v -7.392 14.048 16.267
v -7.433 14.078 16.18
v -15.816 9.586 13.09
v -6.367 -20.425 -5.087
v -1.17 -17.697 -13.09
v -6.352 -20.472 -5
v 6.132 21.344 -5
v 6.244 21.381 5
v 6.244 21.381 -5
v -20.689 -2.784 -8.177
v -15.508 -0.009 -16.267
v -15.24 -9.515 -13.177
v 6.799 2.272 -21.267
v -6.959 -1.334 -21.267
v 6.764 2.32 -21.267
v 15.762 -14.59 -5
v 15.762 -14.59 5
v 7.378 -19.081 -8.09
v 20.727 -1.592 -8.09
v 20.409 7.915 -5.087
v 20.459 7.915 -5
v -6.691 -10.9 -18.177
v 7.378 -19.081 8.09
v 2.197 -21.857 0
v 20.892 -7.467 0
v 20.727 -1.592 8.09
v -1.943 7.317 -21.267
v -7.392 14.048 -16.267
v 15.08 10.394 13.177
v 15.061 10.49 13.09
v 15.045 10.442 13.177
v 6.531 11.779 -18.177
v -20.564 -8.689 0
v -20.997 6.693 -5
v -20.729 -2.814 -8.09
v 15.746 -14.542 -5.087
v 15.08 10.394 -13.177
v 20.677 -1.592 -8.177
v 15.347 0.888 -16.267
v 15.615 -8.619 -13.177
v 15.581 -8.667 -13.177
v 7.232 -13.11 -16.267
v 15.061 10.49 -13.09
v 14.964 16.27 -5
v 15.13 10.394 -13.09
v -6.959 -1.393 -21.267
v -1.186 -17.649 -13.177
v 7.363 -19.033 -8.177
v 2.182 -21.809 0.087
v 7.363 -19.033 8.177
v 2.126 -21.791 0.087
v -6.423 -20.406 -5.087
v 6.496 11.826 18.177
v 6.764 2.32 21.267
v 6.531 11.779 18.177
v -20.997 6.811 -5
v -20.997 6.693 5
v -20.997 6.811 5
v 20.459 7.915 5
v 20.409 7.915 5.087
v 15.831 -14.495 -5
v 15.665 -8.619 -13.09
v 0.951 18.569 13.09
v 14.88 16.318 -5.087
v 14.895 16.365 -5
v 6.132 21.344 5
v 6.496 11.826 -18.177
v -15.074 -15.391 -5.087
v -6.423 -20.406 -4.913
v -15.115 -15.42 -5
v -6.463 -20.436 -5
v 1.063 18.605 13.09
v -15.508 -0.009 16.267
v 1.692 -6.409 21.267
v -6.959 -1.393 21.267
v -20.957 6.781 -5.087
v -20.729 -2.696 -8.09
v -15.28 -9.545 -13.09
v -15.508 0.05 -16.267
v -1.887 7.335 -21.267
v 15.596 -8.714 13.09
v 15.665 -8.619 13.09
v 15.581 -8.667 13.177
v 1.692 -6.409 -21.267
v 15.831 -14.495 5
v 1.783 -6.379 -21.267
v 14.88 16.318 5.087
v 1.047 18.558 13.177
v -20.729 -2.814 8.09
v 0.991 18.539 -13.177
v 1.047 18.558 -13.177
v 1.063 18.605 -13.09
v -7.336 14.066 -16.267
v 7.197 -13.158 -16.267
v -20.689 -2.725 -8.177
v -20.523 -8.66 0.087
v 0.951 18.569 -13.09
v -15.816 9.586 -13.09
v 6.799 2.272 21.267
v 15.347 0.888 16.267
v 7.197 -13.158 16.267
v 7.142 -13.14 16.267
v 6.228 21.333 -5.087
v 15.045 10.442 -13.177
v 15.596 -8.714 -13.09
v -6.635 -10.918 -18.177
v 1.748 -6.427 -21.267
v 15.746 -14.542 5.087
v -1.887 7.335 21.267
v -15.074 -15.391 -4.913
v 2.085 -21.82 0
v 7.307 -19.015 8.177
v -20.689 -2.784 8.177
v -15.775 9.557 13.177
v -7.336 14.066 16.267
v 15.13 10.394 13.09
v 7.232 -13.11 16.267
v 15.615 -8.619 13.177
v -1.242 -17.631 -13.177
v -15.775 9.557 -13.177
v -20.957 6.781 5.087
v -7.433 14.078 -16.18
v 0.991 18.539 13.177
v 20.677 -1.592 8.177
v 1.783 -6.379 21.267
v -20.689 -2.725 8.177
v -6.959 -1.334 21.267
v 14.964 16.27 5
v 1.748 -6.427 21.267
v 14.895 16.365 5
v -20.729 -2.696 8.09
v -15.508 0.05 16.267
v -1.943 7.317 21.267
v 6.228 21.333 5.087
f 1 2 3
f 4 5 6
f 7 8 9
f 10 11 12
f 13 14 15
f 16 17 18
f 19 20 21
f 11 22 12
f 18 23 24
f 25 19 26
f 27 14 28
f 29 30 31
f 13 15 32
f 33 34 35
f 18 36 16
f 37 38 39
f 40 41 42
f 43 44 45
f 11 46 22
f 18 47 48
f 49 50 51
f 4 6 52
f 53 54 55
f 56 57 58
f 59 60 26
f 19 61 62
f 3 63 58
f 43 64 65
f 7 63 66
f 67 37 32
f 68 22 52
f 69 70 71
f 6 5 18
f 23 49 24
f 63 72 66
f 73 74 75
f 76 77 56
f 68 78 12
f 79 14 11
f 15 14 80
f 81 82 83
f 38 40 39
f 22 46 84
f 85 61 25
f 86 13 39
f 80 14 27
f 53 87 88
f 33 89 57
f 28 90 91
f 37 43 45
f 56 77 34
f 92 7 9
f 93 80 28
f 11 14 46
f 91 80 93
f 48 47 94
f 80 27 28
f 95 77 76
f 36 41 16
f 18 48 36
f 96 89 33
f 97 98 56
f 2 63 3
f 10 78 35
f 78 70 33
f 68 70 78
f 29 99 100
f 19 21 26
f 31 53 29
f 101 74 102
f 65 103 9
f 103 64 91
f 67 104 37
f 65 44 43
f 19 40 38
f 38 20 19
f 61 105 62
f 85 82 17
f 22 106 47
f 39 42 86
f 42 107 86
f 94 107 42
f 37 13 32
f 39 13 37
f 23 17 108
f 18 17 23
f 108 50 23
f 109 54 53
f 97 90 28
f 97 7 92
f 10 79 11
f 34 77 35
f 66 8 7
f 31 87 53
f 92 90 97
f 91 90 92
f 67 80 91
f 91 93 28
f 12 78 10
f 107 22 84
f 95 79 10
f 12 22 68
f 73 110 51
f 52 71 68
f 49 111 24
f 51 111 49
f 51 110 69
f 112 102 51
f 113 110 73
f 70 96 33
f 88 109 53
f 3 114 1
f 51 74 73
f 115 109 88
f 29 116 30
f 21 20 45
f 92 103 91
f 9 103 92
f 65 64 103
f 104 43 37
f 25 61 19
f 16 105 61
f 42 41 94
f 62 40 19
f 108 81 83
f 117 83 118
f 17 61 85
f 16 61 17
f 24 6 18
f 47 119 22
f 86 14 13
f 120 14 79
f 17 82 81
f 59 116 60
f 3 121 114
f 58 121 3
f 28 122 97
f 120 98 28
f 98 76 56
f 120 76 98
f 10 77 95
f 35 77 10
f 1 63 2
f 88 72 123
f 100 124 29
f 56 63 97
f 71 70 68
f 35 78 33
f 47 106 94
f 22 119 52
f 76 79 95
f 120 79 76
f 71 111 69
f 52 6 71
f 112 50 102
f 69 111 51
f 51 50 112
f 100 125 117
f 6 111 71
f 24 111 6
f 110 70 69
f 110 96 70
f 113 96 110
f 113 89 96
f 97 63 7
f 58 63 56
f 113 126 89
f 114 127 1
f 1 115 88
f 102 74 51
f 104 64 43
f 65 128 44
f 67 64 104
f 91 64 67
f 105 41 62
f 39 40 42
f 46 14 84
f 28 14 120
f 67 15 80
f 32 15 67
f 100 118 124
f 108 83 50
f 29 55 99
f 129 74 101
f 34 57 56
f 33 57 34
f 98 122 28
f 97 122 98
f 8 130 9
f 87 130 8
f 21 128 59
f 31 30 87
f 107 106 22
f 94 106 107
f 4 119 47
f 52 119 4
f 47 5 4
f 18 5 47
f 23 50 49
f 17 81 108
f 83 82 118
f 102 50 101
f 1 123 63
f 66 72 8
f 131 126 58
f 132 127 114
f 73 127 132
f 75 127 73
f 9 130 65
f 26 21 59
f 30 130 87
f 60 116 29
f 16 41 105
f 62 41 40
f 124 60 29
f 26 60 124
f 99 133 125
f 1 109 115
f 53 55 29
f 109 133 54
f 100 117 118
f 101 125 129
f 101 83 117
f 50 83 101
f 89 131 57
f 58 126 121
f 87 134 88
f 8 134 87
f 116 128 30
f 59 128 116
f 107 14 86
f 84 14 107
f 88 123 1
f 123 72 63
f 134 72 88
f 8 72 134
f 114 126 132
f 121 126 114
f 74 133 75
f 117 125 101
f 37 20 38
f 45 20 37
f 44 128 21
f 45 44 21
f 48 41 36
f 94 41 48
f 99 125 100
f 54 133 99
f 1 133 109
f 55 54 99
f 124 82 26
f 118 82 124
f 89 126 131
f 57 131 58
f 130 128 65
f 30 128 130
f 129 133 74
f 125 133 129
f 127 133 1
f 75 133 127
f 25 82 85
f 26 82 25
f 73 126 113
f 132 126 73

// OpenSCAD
// Auto-generated OpenSCAD file

    inner_points = 10*[[1.529747169709951, 0.0887684815985697, 1.6180339887495454], [-0.6650403250001585, -1.087029682257868, -1.8090169943750285], [0.6748581958379799, 0.22720562383973383, 2.1180339887497732], [-1.5199292988721298, -0.9485925400167037, -1.3090169943748005], [1.502961023190905, 1.0394477122238417, 1.3090169943748005], [-0.6918264715192047, -0.13635045163259588, -2.1180339887497732], [0.6480720493189337, 1.1778848544650058, 1.8090169943750285], [-1.5467154453911758, 0.0020866906085682327, -1.6180339887495454], [0.7347538403093706, -1.8985777606351613, 0.8090169943743729], [0.21663479539132455, -2.176146055124717, -5.111466805374221e-13], [0.6212859027994219, 2.128564085090691, -0.49999999999971656], [0.10316685788137583, 1.8509957906011352, -1.3090169943746006], [2.0626732322522554, -0.15918577764171576, 0.8090169943744226], [1.5565333162282435, -0.8619107490260339, -1.309016994375499], [-1.5467154453904224, 0.002086690607900017, 1.618033988750244], [-2.0648344903084683, -0.27548160388165555, 0.8090169943753601], [2.035887085733209, 0.7914934529835562, 0.4999999999996777], [1.5297471697091976, 0.08876848159923792, -1.618033988750244], [-1.5735015919094684, 0.9527659212331719, 1.309016994375499], [-2.0916206368275145, 0.6751976267436165, 0.5000000000006152], [2.0626732322518784, -0.15918577764138167, -0.809016994375472], [0.1732938998954964, -0.6379147475740927, -2.1180339887500783], [-0.1902621755767213, 0.7287699197812307, 2.1180339887500783], [-2.0648344903088454, -0.2754816038813214, -0.8090169943745347], [0.7181990913331984, -1.3110256837103498, 1.6180339887494455], [-0.6382541784808796, -2.037708912883346, -0.5000000000002833], [0.6212859027996548, 2.128564085090484, 0.5000000000002833], [-0.7351673670144232, 1.4018808559174876, -1.6180339887494455], [1.5730880652047925, -1.4494628259511797, -0.500000000000677], [1.5029610231902952, 1.0394477122243824, -1.3090169943750942], [1.5565333162288535, -0.8619107490265745, 1.3090169943743954], [-0.12013513356321057, -1.7601406183934567, -1.309016994375294], [0.1732938998964831, -0.6379147475749672, 2.118033988749711], [-1.5033745498955808, -1.5361446169418493, -0.49999999999997824], [1.486406274214356, 1.6269997891489871, 0.49999999999997824], [-0.190262175577708, 0.7287699197821053, -2.118033988749711], [0.10316685788198571, 1.8509957906005945, 1.309016994375294], [-1.5735015919100783, 0.9527659212337125, -1.3090169943743954], [1.5730880652050256, -1.4494628259513862, 0.49999999999932293], [0.7347538403089937, -1.8985777606348273, -0.8090169943755219], [1.486406274214123, 1.6269997891491939, -0.5000000000000218], [0.6480720493180911, 1.1778848544657528, -1.8090169943748664], [2.079227981228428, -0.7467378545665272, -6.49896803039951e-13], [0.7181990913324445, -1.3110256837096819, -1.6180339887503443], [-0.6918264715182181, -0.13635045163347048, 2.1180339887500166], [-2.0482797413322964, -0.8630336808064671, 2.875200078022999e-13], [2.0358870857329765, 0.7914934529837627, -0.5000000000003222], [0.6748581958369932, 0.22720562384060844, -2.1180339887500166], [-0.7351673670136694, 1.4018808559168197, 1.6180339887503443], [-2.0916206368277477, 0.6751976267438229, -0.4999999999993848]];

    outer_points = 10*[[1.9089405079323911, -0.4218501272152671, -1.0789145401017997], [-1.2043326607979576, -0.577474804500691, 1.7894618380401386], [1.8819218900924022, 0.577474804500691, -1.054021265088006], [-1.2313512786379466, 0.4218501272152671, 1.8143551130539322], [1.2313512786379466, -0.4218501272152671, -1.8143551130539322], [-1.8819218900924022, -0.577474804500691, 1.054021265088006], [1.2043326607979576, 0.577474804500691, -1.7894618380401386], [-1.9089405079323911, 0.4218501272152671, 1.0789145401017997], [1.8161383771497412, -0.48129346445006527, 1.2066755875633466], [1.0811942768032063, -0.5180314672658928, 1.883807397859486], [-1.0541756589632172, -0.48129346445006527, -1.9087006728732798], [-1.789119759309752, -0.5180314672658928, -1.2315688625771404], [1.604429700784257, -1.3321032531169081, -0.7983572106372436], [0.028548915388096174, -2.1349731725874808, 0.6535613890536225], [0.6490403139063483, 2.1349731725874808, 0.08187918389851007], [-0.0859037864401867, 2.0982351697716535, 0.7590109941946495], [0.9268404714898124, -1.3321032531169081, -1.5337977835893761], [-0.6490403139063483, -2.1349731725874808, -0.08187918389851007], [-0.028548915388096174, 2.1349731725874808, -0.6535613890536225], [-0.7634930157346311, 2.0982351697716535, 0.02357042124251696], [0.3254392898648874, -2.188664775803015, -0.2998395325355988], [-1.2941585375254203, -1.3745929899519995, 1.192357232218884], [1.2941585375254203, 1.3745929899519995, -1.192357232218884], [-1.3648941973595563, 1.2416736470855463, 1.2575286722962942], [2.1878247482682935, 0.04809067002531284, 0.4440474477137366], [0.26371611372985215, -0.04809067002531284, 2.2168015419327753], [-0.26371611372985215, 0.04809067002531284, -2.2168015419327753], [-2.1878247482682935, -0.04809067002531284, -0.4440474477137366], [0.9358529551889134, -1.807795784376752, 0.9176718508015878], [-0.8380986775147881, -1.807795784376752, -1.0077365658927917], [2.097998871540831, -0.7490275154259958, -0.1530571581075182], [-0.28033019684298266, -0.8679141898955922, 2.038187409738281], [2.0542818295466843, 0.8679141898955922, -0.11277899304390138], [-0.3240472388371295, 0.7490275154259958, 2.0784655748018976], [0.3240472388371295, -0.7490275154259958, -2.0784655748018976], [-2.0542818295466843, -0.8679141898955922, 0.11277899304390138], [0.28033019684298266, 0.8679141898955922, -2.038187409738281], [-2.097998871540831, 0.7490275154259958, 0.1530571581075182], [1.7263125004222784, -1.2784116499013738, 0.609570981742092], [0.5371479662303715, -1.337854987136172, 1.7051932656649915], [-0.46641230639623543, -1.2784116499013738, -1.770364705742402], [-1.6555768405881424, -1.337854987136172, -0.6747424218195024], [1.2327433296657047, -1.8614873875922862, -0.03572907078763354], [-0.37015607357044544, -1.6650323753469007, 1.441082803917026], [1.4665184769797024, 1.6650323753469007, -0.2511149601747792], [-0.4575901575587392, 1.5688510352962752, 1.5216391340442594], [0.1363809262564476, -1.8614873875922862, -1.2256969145298804], [-1.4665184769797024, -1.6650323753469007, 0.2511149601747792], [0.37015607357044544, 1.6650323753469007, -1.441082803917026], [-1.5539525609679963, 1.5688510352962752, 0.3316712903020125]];

    // Convex hull for inner set (I)
    module inner_hull() {
        hull() {
            for (p = inner_points) {
                translate(p) sphere(r=0.1);
            }
        }
    }

    // Convex hull for outer set (O) minus inner hull (O \ I)
    module outer_minus_inner() {
        difference() {
            hull() {
                for (p = outer_points) {
                    translate(p) sphere(r=0.1);
                }
            }
            inner_hull(); // Subtract inner hull
        }
    }

    // Convex hull for outer set (O) minus all translated inner hulls
    module outer_minus_AllTranslationInner() {
        difference() {
            hull() {
                for (p = outer_points) {
                    translate(p) sphere(r=0.1);
                }
            }
            hull() {
                translate([0,0,50]) inner_hull();
                translate([0,0,-50]) inner_hull();
            }; // Subtract translated inner hulls
        }
    }

    // Difference between outer_minus_inner and outer_minus_AllTranslationInner
    module outer_minus_inner_diff() {
        difference() {
            // Outer minus inner
            difference() {
                hull() {
                    for (p = outer_points) {
                        translate(p) sphere(r=0.1);
                    }
                }
                inner_hull();
            }

            // Subtract Outer minus AllTranslationInner
            difference() {
                hull() {
                    for (p = outer_points) {
                        translate(p) sphere(r=0.1);
                    }
                }
                hull() {
                    translate([0,0,50]) inner_hull();
                    translate([0,0,-50]) inner_hull();
                };
            }
        }
    }

    // Rendering all with colors applied
    color([1, 0, 0, 0.5]) inner_hull(); // Transparent red
    
